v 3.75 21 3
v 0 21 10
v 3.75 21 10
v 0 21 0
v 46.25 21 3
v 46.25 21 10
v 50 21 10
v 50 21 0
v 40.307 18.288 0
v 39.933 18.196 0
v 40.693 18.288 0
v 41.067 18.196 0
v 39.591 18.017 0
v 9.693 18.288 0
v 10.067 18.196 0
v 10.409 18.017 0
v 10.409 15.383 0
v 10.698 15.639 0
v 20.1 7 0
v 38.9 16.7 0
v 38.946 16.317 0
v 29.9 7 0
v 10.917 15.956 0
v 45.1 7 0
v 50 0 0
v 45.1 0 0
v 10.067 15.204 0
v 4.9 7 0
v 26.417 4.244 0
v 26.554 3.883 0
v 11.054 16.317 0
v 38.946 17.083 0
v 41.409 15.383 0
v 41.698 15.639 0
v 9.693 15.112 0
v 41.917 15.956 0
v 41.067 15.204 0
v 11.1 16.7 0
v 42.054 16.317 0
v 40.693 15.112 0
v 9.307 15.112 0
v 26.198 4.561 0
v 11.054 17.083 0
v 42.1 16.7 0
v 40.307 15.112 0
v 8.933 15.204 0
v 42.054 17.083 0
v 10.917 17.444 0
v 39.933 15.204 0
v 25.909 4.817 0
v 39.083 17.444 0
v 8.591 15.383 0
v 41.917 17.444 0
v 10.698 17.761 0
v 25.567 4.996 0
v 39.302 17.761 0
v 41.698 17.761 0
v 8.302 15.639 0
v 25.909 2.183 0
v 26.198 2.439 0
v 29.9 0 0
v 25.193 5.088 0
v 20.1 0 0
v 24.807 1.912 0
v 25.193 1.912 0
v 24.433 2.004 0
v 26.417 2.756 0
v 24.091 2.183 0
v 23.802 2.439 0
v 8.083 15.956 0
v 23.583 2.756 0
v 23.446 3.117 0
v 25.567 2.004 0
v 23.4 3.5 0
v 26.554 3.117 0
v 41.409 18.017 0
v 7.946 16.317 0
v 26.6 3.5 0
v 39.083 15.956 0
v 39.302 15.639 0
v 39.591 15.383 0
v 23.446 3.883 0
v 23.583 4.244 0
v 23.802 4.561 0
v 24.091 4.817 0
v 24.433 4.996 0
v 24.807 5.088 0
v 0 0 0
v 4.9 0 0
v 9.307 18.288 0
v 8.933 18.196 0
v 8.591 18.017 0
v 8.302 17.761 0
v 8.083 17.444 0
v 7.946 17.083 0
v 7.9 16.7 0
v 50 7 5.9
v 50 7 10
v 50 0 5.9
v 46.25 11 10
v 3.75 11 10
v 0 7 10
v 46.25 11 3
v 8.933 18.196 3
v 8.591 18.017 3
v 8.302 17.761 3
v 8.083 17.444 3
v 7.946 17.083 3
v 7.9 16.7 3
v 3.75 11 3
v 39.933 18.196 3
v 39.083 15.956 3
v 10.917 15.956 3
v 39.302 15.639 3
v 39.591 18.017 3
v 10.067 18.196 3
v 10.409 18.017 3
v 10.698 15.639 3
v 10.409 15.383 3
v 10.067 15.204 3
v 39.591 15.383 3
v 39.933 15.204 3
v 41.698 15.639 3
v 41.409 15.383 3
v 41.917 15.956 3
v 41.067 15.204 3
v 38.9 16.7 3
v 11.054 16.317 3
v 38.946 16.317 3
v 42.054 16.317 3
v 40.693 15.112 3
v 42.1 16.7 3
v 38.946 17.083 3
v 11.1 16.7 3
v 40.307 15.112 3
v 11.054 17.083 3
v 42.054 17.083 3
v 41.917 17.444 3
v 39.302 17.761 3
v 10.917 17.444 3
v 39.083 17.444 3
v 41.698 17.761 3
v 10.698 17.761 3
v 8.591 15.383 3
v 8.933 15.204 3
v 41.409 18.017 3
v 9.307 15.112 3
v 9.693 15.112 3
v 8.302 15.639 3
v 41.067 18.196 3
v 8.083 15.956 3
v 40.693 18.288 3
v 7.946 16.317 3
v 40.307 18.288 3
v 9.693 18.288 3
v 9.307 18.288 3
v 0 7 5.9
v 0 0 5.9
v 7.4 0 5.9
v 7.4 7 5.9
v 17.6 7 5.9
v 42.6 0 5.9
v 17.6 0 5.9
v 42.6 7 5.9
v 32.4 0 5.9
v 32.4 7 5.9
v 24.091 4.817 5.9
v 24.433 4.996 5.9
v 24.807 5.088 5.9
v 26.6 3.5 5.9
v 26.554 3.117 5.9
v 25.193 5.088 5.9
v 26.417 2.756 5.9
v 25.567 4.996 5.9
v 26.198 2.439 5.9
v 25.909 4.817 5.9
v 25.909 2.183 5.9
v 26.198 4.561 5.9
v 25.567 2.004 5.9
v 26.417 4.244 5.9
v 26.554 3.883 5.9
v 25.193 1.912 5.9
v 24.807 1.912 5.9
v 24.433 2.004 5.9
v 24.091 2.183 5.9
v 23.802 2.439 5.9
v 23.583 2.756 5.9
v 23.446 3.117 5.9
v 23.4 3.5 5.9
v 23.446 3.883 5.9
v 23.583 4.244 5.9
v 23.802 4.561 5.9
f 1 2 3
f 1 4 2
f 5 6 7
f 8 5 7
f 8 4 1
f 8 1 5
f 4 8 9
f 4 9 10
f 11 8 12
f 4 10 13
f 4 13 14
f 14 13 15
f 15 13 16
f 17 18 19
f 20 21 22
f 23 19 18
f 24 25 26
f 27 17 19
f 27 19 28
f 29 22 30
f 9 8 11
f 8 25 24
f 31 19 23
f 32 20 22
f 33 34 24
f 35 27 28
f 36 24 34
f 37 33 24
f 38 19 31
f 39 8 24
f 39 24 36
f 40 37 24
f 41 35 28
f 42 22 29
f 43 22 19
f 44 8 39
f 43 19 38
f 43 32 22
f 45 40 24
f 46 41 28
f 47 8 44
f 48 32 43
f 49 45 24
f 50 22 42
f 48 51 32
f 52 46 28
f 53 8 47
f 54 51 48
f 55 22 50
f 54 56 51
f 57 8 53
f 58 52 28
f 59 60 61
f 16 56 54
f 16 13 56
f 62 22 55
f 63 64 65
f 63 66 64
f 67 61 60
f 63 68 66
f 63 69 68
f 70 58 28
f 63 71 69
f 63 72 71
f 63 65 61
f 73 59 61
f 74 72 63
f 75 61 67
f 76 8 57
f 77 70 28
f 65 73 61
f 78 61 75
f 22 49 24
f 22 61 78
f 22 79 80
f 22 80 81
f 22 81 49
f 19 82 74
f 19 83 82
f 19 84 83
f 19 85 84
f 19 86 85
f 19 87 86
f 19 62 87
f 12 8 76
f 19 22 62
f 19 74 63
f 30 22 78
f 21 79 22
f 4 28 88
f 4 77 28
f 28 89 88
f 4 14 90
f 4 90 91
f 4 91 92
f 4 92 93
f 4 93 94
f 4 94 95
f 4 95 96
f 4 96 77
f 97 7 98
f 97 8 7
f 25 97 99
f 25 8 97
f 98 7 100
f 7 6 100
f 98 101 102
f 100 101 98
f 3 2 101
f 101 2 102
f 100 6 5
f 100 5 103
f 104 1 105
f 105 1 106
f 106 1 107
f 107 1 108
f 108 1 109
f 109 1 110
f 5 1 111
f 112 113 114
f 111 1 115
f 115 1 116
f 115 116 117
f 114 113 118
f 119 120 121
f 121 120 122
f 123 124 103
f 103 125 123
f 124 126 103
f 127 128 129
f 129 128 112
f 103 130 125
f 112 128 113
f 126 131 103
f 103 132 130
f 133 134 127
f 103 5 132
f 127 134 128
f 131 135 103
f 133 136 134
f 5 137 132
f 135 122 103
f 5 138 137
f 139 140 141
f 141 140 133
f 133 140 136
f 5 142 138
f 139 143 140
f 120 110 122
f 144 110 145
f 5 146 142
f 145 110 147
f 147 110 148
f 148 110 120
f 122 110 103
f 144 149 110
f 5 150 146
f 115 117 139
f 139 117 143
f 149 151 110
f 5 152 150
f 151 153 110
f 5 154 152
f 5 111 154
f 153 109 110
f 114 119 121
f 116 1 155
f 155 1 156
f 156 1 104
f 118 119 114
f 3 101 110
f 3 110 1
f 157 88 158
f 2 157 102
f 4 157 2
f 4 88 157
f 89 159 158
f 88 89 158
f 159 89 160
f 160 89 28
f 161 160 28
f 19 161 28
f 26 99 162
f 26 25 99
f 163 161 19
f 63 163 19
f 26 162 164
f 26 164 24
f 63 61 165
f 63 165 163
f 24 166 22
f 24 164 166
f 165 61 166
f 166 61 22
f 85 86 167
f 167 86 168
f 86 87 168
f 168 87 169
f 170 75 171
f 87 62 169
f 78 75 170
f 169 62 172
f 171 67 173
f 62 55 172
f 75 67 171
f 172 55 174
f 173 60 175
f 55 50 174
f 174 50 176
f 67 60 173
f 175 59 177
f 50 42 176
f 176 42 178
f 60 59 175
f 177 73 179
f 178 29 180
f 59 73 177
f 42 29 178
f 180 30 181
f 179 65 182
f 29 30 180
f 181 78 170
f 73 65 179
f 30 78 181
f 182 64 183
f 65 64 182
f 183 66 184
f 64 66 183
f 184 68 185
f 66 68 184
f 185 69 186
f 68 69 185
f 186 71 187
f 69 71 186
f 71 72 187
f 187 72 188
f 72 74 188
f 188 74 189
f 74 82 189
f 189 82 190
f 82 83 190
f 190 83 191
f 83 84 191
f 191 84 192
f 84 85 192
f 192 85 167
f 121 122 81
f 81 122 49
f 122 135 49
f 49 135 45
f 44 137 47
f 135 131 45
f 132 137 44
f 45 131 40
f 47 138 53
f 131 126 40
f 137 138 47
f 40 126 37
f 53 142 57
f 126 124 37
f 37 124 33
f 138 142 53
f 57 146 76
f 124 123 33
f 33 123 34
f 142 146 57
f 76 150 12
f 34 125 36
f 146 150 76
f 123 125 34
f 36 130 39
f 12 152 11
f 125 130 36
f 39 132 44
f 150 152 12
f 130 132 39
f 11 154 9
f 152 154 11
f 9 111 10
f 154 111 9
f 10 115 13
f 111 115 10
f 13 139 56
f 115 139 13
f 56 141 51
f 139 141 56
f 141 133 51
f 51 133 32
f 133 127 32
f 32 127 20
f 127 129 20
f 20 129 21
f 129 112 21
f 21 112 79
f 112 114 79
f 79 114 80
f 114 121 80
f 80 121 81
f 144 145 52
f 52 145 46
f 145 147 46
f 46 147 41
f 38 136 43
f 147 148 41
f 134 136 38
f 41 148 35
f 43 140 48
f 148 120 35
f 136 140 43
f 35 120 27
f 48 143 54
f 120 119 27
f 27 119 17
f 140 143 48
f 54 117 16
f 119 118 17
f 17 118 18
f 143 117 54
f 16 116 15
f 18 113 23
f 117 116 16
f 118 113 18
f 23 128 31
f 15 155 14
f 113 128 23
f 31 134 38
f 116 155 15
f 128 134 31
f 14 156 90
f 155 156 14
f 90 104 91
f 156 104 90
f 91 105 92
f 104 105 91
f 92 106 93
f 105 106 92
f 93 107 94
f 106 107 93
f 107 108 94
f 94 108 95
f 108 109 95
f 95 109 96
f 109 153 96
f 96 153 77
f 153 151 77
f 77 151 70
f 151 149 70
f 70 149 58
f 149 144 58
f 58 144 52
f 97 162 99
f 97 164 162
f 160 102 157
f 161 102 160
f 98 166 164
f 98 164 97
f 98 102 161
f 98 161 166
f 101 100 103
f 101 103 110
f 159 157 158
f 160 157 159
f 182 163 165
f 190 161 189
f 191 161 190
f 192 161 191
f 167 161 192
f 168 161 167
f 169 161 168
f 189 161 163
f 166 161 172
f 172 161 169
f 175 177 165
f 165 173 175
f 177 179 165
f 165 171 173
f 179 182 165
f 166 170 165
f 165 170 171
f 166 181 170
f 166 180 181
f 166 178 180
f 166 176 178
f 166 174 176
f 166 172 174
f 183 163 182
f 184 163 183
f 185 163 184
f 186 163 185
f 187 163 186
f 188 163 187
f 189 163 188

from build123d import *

# Parameters (mm, degrees)
SKETCH_W        = 50
SKETCH_H        = 21
PAD_DEPTH       = 10
SKETCH001_W     = 42.5
SKETCH001_H     = 10
POCKET_DEPTH    = 7
SKETCH002_R     = 1.6
POCKET001_DEPTH = 5
POCKET002_DEPTH = 7
SKETCH004_W     = 50
SKETCH004_H     = 7
POCKET003_DEPTH = 4.1
SKETCH005_R     = 1.6
POCKET004_DEPTH = 10.001


with BuildPart() as part:
    # Sketch → Pad (new body)
    with BuildSketch(Plane.XY):
        with Locations((25, 10.5)):
            Rectangle(SKETCH_W, SKETCH_H)
    extrude(amount=PAD_DEPTH)

    # Sketch001 (on Face6 of Pad) → Pocket (cut)
    with BuildSketch(Plane.XY.offset(10)):
        with Locations((25, 16)):
            Rectangle(SKETCH001_W, SKETCH001_H)
    extrude(amount=-POCKET_DEPTH, mode=Mode.SUBTRACT)

    # Sketch002 (on Face6 of Pocket) → Pocket001 (cut)
    with BuildSketch(Plane.XY.offset(3)):
        with Locations((9.5, 16.7)):
            Circle(SKETCH002_R)
        with Locations((40.5, 16.7)):
            Circle(SKETCH002_R)
    extrude(amount=-POCKET001_DEPTH, mode=Mode.SUBTRACT)

    # Sketch003 (on Face9 of Pocket001) → Pocket002 (cut)
    with BuildSketch(Plane.XZ):
        Polygon((4.9, 0), (20.1, 0), (17.6, 5.9), (7.4, 5.9), align=None)
        Polygon((29.9, 0), (45.1, 0), (42.6, 5.9), (32.4, 5.9), align=None)
    extrude(amount=-POCKET002_DEPTH, mode=Mode.SUBTRACT)

    # Sketch004 (on Face4 of Pocket002) → Pocket003 (cut)
    with BuildSketch(Plane.XY.offset(10)):
        with Locations((25, 3.5)):
            Rectangle(SKETCH004_W, SKETCH004_H)
    extrude(amount=-POCKET003_DEPTH, mode=Mode.SUBTRACT)

    # Sketch005 (on Face2 of Pocket003) → Pocket004 (cut, through all)
    with BuildSketch(Plane(origin=(0, 0, 0), x_dir=(1, 0, 0), z_dir=(0, 0, -1))):
        with Locations((25, -3.5)):
            Circle(SKETCH005_R)
    extrude(amount=-POCKET004_DEPTH, mode=Mode.SUBTRACT)


solid = part.part
